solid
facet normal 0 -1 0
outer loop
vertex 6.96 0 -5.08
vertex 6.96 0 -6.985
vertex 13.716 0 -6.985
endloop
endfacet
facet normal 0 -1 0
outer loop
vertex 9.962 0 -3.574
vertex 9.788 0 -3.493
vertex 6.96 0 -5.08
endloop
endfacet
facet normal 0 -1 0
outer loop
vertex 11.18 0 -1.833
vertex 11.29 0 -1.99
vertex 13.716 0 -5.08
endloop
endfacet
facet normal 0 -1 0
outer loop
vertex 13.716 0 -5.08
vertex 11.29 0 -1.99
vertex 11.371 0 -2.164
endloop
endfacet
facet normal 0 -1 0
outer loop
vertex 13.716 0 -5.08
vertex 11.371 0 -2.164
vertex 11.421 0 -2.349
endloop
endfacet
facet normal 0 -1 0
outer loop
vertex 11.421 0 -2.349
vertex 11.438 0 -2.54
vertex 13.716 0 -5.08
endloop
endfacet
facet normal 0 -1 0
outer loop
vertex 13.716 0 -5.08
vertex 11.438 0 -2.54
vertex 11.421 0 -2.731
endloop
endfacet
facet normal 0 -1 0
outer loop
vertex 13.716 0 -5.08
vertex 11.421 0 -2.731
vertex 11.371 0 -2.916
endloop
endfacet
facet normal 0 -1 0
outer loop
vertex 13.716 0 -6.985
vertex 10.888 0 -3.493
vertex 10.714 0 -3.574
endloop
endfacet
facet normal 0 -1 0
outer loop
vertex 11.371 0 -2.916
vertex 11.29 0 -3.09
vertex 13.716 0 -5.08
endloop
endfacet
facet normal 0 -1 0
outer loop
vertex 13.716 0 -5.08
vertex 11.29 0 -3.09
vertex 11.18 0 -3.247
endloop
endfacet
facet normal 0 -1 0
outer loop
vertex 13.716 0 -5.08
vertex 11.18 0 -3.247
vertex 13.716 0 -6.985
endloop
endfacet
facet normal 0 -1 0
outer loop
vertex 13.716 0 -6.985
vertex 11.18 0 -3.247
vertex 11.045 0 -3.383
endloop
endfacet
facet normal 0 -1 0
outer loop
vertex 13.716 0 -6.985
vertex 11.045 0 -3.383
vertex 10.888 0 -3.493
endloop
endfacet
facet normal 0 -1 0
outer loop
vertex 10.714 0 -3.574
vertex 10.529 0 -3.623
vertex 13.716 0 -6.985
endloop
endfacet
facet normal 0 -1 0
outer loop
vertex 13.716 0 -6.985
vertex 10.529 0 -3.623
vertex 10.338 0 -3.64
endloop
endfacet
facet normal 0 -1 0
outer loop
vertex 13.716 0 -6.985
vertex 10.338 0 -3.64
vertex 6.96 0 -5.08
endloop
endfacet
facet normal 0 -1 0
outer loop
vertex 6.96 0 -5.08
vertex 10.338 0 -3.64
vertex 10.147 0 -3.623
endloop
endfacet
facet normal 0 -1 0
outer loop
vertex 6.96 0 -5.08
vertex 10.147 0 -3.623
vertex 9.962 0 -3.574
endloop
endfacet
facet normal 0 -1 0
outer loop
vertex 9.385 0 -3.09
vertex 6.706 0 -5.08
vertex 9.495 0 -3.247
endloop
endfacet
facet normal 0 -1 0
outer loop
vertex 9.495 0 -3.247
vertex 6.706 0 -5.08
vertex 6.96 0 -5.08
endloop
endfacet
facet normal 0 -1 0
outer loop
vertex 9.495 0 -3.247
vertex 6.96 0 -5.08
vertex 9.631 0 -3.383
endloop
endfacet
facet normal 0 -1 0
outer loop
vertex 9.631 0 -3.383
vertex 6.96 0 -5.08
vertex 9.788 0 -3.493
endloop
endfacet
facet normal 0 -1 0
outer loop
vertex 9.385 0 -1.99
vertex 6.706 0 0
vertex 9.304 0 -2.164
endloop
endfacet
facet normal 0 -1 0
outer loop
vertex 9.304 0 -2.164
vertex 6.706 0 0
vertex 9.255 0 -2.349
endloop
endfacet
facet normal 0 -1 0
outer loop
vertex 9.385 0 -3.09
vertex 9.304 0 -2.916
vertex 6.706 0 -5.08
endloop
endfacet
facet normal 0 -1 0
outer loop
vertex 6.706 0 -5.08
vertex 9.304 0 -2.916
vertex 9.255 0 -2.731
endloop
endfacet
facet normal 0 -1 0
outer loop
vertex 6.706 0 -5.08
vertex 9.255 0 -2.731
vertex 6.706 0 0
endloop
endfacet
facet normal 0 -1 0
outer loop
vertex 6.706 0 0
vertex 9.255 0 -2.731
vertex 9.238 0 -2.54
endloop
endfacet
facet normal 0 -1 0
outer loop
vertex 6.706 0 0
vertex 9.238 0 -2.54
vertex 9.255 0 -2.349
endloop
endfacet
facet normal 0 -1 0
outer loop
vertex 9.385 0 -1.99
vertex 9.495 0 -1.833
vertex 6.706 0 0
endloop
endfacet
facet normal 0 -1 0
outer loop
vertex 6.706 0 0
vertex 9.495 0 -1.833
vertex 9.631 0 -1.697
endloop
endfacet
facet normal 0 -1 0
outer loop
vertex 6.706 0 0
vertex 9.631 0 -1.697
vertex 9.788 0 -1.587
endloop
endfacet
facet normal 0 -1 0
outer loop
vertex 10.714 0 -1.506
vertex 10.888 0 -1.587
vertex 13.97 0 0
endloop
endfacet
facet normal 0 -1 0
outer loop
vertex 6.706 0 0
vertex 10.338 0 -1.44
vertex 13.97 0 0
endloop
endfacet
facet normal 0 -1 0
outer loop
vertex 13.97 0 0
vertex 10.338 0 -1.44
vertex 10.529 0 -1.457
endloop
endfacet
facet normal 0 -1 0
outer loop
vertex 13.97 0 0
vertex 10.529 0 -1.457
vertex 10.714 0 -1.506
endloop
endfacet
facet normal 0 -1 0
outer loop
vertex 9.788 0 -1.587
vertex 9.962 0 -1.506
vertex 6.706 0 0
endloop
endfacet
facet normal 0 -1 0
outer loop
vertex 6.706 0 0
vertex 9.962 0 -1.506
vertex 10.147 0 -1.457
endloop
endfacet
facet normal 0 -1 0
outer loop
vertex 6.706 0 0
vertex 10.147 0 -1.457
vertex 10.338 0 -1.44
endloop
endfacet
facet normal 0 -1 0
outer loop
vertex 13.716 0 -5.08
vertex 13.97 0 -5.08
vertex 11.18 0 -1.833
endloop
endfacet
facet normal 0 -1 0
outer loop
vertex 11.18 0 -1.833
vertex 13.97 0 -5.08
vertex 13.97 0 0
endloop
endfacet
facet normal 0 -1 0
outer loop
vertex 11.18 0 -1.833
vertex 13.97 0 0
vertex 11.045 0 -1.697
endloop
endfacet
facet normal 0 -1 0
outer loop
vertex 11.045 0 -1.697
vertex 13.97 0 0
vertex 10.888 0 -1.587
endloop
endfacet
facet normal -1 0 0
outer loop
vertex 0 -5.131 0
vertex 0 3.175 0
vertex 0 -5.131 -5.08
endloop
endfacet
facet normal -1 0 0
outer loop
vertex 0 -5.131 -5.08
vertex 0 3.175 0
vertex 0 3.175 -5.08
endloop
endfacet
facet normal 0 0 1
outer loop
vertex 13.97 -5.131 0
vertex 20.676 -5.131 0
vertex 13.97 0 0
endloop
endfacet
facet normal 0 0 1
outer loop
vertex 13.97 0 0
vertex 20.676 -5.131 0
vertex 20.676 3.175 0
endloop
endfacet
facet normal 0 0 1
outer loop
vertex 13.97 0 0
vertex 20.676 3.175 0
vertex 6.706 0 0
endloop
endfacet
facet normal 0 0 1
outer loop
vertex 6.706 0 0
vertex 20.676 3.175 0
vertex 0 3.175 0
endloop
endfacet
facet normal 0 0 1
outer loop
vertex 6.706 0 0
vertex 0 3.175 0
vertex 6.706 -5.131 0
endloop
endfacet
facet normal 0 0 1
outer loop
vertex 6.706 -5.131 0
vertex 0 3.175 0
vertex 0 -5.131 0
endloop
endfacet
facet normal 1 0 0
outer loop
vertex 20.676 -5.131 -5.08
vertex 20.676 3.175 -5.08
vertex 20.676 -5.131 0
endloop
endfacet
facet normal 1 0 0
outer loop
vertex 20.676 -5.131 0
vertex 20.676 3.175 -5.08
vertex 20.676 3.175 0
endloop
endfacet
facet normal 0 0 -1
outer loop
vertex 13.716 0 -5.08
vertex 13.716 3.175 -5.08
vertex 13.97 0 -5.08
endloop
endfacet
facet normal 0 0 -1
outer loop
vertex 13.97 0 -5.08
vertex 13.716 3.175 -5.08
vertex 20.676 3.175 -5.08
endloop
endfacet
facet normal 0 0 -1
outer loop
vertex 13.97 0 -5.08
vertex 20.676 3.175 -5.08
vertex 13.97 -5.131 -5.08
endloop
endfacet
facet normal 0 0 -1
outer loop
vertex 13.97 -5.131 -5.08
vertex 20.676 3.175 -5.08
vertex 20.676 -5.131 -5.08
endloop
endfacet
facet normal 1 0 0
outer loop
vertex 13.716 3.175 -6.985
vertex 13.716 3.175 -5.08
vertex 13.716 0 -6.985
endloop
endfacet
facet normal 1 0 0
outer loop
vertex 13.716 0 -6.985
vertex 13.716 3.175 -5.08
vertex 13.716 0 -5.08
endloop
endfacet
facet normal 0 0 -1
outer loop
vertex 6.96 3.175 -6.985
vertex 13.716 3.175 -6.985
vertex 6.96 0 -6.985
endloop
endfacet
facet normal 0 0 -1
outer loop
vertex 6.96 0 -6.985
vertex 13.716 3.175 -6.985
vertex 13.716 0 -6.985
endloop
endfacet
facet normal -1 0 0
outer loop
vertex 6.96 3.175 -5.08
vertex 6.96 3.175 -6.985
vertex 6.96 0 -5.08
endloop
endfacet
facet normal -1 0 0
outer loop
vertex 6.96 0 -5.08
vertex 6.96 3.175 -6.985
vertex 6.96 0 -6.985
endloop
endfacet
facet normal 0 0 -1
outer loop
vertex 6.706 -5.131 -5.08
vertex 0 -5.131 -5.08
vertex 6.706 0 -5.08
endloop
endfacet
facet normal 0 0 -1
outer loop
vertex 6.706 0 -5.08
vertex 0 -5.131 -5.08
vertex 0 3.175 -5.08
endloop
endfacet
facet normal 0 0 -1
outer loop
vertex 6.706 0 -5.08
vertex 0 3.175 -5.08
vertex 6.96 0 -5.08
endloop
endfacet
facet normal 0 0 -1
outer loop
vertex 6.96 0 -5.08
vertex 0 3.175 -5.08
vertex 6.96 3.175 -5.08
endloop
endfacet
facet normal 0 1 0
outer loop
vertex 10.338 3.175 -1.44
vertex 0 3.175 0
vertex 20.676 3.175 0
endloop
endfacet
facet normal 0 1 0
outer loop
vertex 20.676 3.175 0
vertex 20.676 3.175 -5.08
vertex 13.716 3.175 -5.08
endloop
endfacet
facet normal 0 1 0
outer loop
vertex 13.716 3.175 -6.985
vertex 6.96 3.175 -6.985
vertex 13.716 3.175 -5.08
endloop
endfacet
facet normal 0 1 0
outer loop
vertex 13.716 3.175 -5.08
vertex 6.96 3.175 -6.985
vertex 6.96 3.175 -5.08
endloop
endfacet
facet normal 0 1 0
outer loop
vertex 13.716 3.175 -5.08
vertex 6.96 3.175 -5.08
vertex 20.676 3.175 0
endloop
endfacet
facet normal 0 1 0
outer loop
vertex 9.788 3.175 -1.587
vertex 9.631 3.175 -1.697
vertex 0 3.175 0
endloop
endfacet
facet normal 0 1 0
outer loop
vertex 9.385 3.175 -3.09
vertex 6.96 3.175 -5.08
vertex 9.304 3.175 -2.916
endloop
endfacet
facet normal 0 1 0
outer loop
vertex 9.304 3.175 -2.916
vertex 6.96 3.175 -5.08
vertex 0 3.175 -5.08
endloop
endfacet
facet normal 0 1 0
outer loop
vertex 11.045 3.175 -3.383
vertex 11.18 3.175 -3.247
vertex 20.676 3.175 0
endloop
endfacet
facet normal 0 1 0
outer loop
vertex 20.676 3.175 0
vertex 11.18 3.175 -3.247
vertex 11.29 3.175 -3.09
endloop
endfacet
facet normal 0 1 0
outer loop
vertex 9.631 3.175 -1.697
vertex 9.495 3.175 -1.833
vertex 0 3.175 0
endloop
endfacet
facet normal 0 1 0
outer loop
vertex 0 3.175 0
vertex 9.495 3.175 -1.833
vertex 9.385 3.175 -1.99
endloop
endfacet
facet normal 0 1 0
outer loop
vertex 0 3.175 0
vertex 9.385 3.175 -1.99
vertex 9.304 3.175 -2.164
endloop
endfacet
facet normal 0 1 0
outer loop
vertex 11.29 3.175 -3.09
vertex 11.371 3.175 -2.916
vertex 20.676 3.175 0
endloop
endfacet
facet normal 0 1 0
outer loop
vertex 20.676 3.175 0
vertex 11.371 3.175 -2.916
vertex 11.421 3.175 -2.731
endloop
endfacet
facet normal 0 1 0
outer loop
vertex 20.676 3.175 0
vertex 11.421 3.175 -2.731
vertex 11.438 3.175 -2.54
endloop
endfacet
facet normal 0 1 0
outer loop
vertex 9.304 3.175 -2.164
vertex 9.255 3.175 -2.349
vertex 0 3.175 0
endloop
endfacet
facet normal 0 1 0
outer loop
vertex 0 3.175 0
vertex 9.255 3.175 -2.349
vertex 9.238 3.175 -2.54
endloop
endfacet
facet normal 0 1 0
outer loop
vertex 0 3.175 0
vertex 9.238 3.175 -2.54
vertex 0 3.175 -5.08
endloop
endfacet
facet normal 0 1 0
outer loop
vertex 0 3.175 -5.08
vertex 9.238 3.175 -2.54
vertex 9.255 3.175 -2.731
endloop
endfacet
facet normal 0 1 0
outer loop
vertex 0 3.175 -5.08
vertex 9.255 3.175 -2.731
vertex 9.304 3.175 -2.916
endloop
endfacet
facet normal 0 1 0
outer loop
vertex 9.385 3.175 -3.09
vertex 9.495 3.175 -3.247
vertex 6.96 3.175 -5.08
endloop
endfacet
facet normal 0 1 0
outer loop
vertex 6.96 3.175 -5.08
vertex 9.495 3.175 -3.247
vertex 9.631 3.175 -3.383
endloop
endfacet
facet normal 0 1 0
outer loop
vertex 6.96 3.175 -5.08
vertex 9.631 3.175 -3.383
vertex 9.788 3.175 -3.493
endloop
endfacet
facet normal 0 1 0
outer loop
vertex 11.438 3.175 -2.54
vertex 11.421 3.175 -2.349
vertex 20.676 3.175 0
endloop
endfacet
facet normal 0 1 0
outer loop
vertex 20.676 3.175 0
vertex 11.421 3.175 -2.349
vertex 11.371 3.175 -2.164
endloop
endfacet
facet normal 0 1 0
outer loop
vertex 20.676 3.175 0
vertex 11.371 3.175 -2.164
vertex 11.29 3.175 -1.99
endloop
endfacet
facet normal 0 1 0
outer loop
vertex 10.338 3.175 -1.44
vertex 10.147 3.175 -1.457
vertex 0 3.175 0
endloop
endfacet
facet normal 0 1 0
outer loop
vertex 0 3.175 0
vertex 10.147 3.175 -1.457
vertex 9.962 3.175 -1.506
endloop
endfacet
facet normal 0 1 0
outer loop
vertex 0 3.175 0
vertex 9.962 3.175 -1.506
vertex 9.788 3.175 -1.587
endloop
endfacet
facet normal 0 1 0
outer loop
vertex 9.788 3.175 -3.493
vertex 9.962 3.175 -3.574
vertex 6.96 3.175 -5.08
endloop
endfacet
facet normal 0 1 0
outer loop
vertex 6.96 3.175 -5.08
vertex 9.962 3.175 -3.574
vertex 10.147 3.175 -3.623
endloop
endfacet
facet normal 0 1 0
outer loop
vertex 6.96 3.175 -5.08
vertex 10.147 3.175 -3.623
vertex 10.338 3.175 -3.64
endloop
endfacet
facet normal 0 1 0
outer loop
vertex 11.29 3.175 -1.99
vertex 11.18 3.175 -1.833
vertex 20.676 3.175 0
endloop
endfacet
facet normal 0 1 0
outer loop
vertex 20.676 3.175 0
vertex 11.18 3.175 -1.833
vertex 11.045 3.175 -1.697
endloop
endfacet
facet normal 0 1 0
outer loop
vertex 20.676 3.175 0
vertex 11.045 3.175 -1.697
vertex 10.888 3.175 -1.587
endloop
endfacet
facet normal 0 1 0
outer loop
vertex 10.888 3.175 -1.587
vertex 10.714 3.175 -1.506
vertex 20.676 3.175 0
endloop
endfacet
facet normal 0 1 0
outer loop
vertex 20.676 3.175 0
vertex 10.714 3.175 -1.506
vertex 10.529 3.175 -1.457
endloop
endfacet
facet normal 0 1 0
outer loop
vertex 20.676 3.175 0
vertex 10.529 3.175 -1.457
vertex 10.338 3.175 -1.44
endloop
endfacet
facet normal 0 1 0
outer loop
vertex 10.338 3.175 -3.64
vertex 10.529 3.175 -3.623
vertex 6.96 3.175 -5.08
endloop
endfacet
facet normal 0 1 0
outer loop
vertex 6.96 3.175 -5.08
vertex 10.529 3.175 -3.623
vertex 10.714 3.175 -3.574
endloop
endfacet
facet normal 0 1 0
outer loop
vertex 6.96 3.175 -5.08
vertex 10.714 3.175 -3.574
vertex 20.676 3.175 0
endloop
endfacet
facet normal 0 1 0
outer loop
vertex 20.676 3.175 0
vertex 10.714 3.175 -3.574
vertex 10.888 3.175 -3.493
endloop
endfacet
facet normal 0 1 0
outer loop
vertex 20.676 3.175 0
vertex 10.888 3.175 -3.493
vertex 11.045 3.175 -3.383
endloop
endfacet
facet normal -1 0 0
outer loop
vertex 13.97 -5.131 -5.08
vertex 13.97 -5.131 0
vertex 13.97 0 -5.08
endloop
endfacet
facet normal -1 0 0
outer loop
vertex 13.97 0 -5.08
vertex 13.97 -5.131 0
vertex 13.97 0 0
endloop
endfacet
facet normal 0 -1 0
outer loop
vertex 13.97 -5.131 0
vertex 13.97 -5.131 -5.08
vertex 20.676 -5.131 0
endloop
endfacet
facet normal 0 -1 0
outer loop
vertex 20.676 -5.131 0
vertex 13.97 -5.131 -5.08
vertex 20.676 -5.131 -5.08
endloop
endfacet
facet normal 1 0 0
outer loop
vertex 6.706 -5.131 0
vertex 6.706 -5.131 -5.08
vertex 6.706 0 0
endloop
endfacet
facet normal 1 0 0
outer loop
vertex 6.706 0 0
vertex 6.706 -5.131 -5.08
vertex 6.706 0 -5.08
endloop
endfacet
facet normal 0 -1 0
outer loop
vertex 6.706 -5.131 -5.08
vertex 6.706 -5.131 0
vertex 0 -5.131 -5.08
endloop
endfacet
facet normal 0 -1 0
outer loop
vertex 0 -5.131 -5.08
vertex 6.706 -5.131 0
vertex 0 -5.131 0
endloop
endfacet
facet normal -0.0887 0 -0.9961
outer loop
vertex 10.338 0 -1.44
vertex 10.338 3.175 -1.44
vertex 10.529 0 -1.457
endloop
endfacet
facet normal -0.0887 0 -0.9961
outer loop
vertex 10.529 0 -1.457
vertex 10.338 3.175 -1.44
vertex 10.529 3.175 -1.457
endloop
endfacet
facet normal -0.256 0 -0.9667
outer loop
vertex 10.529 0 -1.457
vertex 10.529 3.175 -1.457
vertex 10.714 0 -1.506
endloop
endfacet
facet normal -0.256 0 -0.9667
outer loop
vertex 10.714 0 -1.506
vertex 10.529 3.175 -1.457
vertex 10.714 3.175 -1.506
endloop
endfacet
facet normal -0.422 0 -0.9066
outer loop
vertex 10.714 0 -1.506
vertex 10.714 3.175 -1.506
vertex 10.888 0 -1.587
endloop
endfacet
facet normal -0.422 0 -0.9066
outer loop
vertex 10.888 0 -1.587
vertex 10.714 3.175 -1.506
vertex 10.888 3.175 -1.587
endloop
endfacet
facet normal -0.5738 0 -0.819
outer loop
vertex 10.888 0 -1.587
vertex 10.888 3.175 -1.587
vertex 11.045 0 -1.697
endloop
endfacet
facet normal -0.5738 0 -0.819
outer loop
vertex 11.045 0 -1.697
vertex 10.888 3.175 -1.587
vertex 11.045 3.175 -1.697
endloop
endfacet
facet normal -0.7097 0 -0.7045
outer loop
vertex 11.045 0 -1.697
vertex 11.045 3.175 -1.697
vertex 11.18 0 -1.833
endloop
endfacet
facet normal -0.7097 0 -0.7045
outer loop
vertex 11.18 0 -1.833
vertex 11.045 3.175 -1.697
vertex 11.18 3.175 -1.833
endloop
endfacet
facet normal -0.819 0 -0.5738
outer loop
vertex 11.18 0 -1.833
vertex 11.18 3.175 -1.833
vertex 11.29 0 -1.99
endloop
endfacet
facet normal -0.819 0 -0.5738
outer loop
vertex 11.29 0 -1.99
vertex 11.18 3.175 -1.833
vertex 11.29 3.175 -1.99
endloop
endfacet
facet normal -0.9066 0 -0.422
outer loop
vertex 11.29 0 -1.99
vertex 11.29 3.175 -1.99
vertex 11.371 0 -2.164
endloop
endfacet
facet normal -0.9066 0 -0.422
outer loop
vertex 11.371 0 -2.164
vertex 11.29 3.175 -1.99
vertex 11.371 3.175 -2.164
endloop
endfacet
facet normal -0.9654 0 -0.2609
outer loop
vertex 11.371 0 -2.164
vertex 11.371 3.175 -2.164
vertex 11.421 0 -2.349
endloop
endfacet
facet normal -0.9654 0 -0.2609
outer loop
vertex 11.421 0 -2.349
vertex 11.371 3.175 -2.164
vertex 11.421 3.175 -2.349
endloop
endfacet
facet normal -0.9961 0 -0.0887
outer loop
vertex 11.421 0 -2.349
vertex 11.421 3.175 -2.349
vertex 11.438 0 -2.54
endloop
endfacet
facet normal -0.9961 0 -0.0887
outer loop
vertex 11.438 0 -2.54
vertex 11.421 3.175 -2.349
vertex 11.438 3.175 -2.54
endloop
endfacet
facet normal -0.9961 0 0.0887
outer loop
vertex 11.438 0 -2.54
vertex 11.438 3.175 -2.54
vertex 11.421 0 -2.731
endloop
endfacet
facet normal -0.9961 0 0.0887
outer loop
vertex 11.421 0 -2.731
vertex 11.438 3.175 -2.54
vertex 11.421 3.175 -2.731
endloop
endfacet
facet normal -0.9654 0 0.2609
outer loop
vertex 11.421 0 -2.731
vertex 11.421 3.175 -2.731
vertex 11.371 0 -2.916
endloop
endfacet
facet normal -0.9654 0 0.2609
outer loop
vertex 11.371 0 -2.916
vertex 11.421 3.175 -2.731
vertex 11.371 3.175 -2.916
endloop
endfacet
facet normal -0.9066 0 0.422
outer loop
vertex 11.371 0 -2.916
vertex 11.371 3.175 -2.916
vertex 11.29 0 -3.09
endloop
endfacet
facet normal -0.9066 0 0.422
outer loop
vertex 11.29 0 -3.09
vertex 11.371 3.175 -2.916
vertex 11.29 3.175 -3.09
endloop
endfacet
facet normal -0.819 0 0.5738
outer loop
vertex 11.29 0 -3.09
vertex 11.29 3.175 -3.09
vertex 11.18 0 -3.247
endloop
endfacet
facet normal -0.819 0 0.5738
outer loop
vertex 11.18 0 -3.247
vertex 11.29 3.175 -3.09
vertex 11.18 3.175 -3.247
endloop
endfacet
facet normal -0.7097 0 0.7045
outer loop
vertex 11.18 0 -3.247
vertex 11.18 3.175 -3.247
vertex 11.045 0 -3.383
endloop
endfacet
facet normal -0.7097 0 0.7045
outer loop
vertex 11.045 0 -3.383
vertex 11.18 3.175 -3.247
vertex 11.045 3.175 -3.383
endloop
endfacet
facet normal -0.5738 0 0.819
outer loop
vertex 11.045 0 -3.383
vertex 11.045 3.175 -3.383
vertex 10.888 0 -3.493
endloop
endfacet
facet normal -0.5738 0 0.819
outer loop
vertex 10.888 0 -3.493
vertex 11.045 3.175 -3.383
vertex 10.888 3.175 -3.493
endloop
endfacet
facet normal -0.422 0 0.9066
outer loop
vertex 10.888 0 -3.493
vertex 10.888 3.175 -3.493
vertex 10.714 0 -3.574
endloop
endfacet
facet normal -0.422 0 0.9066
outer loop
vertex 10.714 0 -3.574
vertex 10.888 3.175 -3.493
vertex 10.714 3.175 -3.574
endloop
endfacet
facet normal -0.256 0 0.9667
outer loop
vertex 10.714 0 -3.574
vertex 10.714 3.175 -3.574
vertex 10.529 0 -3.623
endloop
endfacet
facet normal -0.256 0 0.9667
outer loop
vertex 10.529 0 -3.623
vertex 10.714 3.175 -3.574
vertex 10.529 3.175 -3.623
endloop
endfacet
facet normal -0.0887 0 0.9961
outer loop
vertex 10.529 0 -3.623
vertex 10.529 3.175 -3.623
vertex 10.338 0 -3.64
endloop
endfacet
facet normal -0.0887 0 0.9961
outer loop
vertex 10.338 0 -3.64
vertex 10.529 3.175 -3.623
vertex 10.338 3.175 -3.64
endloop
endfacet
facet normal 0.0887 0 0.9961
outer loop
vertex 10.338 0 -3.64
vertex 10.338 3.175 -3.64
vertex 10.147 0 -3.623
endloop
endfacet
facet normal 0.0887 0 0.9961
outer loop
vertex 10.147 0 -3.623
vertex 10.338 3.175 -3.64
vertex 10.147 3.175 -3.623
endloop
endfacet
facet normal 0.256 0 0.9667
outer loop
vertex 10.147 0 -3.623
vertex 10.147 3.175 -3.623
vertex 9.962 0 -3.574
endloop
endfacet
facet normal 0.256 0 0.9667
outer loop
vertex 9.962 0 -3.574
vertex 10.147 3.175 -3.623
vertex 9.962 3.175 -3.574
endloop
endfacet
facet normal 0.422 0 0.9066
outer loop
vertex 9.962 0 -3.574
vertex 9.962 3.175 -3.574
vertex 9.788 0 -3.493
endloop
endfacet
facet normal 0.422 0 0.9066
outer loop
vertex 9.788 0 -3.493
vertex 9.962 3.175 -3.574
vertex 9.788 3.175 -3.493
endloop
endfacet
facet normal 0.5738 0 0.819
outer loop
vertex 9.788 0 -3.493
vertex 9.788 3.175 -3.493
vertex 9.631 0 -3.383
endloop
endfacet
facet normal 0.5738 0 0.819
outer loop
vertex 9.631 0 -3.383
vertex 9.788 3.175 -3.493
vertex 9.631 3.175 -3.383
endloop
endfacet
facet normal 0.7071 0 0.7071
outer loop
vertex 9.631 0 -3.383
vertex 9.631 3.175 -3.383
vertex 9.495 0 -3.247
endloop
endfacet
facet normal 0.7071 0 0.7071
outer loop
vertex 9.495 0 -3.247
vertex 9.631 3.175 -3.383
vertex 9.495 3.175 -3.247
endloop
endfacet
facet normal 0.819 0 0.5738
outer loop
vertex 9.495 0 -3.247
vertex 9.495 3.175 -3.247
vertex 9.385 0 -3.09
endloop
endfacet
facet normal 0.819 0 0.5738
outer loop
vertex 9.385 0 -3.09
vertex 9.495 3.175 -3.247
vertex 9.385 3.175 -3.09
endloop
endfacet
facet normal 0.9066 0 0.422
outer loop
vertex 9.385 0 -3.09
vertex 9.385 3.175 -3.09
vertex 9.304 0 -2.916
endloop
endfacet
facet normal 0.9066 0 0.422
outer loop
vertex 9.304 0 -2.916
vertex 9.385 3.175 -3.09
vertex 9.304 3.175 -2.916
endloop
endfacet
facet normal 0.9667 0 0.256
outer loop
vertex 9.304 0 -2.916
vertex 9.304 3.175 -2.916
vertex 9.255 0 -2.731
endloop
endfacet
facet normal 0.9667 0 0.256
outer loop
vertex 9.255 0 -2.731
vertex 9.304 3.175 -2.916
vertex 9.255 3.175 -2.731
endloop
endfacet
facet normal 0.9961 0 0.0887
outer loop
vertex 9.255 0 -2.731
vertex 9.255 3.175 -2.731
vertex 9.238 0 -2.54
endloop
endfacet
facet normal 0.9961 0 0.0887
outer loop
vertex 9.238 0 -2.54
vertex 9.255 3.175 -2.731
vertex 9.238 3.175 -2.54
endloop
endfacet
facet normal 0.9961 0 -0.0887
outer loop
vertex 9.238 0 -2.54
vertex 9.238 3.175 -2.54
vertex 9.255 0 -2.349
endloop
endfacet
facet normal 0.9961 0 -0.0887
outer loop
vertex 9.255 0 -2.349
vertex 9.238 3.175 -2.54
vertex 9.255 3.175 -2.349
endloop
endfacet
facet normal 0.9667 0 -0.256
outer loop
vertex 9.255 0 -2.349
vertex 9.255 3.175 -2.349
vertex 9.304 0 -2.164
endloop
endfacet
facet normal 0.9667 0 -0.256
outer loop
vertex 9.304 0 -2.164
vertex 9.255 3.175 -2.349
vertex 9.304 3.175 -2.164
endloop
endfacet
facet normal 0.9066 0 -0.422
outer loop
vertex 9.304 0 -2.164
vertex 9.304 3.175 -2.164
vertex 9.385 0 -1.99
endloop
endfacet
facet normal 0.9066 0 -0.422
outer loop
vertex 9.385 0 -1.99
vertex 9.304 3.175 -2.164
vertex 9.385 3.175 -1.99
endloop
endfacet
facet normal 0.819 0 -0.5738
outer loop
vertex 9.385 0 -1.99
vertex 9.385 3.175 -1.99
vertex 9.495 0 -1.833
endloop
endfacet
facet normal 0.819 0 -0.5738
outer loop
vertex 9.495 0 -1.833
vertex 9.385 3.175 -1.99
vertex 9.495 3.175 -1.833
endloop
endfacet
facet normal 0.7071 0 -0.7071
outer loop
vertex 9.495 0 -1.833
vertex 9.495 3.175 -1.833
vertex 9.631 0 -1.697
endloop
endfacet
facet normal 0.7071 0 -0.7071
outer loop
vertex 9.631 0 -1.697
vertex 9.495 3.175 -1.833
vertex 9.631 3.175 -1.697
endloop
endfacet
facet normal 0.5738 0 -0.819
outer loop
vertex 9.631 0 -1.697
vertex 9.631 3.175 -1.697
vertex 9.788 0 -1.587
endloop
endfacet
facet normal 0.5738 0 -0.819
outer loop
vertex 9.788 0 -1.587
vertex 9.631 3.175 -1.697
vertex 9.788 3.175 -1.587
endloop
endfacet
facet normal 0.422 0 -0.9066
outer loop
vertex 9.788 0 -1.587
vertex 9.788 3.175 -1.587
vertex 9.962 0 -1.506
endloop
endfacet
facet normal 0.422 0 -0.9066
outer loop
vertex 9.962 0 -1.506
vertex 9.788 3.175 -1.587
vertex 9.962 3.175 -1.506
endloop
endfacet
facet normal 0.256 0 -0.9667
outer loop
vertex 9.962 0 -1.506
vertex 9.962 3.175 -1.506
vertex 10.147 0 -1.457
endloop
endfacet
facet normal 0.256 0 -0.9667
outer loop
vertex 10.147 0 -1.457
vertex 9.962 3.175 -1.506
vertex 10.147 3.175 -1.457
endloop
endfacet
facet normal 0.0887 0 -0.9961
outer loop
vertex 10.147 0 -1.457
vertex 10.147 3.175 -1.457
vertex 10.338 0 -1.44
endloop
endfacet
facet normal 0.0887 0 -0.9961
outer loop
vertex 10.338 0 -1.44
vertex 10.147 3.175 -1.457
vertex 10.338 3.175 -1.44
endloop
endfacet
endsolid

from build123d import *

# Parameters (mm, degrees)
BOSS_EXTRUDE1_DEPTH  = 3.175
SKETCH2_W            = 6.7056
SKETCH2_H            = 5.08
BOSS_EXTRUDE2_DEPTH  = 5.1308
M2_CLEARANCE_HOLE1_D = 2.2


with BuildPart() as part:
    # Sketch1 → Boss-Extrude1 (new body)
    with BuildSketch(Plane(origin=(0, 0, 0), x_dir=(1, 0, 0), z_dir=(0, 1, 0))):
        Polygon((0, 0), (20.6756, 0), (20.6756, 5.08), (13.716, 5.08), (13.716, 6.985), (6.9596, 6.985), (6.9596, 5.08), (0, 5.08), align=None)
    extrude(amount=BOSS_EXTRUDE1_DEPTH)

    # Sketch2 → Boss-Extrude2 (add)
    with BuildSketch(Plane.XZ):
        with Locations((17.3228, -2.54)):
            Rectangle(SKETCH2_W, SKETCH2_H)
        with Locations((3.3528, -2.54)):
            Rectangle(SKETCH2_W, SKETCH2_H)
    extrude(amount=BOSS_EXTRUDE2_DEPTH)

    # M2 Clearance Hole1 (through all)
    with Locations(Plane(origin=(0, 3.175, 0), x_dir=(1, 0, 0), z_dir=(0, 1, 0))):
        with Locations((10.3378, 2.54)):
            Hole(M2_CLEARANCE_HOLE1_D / 2)


solid = part.part
